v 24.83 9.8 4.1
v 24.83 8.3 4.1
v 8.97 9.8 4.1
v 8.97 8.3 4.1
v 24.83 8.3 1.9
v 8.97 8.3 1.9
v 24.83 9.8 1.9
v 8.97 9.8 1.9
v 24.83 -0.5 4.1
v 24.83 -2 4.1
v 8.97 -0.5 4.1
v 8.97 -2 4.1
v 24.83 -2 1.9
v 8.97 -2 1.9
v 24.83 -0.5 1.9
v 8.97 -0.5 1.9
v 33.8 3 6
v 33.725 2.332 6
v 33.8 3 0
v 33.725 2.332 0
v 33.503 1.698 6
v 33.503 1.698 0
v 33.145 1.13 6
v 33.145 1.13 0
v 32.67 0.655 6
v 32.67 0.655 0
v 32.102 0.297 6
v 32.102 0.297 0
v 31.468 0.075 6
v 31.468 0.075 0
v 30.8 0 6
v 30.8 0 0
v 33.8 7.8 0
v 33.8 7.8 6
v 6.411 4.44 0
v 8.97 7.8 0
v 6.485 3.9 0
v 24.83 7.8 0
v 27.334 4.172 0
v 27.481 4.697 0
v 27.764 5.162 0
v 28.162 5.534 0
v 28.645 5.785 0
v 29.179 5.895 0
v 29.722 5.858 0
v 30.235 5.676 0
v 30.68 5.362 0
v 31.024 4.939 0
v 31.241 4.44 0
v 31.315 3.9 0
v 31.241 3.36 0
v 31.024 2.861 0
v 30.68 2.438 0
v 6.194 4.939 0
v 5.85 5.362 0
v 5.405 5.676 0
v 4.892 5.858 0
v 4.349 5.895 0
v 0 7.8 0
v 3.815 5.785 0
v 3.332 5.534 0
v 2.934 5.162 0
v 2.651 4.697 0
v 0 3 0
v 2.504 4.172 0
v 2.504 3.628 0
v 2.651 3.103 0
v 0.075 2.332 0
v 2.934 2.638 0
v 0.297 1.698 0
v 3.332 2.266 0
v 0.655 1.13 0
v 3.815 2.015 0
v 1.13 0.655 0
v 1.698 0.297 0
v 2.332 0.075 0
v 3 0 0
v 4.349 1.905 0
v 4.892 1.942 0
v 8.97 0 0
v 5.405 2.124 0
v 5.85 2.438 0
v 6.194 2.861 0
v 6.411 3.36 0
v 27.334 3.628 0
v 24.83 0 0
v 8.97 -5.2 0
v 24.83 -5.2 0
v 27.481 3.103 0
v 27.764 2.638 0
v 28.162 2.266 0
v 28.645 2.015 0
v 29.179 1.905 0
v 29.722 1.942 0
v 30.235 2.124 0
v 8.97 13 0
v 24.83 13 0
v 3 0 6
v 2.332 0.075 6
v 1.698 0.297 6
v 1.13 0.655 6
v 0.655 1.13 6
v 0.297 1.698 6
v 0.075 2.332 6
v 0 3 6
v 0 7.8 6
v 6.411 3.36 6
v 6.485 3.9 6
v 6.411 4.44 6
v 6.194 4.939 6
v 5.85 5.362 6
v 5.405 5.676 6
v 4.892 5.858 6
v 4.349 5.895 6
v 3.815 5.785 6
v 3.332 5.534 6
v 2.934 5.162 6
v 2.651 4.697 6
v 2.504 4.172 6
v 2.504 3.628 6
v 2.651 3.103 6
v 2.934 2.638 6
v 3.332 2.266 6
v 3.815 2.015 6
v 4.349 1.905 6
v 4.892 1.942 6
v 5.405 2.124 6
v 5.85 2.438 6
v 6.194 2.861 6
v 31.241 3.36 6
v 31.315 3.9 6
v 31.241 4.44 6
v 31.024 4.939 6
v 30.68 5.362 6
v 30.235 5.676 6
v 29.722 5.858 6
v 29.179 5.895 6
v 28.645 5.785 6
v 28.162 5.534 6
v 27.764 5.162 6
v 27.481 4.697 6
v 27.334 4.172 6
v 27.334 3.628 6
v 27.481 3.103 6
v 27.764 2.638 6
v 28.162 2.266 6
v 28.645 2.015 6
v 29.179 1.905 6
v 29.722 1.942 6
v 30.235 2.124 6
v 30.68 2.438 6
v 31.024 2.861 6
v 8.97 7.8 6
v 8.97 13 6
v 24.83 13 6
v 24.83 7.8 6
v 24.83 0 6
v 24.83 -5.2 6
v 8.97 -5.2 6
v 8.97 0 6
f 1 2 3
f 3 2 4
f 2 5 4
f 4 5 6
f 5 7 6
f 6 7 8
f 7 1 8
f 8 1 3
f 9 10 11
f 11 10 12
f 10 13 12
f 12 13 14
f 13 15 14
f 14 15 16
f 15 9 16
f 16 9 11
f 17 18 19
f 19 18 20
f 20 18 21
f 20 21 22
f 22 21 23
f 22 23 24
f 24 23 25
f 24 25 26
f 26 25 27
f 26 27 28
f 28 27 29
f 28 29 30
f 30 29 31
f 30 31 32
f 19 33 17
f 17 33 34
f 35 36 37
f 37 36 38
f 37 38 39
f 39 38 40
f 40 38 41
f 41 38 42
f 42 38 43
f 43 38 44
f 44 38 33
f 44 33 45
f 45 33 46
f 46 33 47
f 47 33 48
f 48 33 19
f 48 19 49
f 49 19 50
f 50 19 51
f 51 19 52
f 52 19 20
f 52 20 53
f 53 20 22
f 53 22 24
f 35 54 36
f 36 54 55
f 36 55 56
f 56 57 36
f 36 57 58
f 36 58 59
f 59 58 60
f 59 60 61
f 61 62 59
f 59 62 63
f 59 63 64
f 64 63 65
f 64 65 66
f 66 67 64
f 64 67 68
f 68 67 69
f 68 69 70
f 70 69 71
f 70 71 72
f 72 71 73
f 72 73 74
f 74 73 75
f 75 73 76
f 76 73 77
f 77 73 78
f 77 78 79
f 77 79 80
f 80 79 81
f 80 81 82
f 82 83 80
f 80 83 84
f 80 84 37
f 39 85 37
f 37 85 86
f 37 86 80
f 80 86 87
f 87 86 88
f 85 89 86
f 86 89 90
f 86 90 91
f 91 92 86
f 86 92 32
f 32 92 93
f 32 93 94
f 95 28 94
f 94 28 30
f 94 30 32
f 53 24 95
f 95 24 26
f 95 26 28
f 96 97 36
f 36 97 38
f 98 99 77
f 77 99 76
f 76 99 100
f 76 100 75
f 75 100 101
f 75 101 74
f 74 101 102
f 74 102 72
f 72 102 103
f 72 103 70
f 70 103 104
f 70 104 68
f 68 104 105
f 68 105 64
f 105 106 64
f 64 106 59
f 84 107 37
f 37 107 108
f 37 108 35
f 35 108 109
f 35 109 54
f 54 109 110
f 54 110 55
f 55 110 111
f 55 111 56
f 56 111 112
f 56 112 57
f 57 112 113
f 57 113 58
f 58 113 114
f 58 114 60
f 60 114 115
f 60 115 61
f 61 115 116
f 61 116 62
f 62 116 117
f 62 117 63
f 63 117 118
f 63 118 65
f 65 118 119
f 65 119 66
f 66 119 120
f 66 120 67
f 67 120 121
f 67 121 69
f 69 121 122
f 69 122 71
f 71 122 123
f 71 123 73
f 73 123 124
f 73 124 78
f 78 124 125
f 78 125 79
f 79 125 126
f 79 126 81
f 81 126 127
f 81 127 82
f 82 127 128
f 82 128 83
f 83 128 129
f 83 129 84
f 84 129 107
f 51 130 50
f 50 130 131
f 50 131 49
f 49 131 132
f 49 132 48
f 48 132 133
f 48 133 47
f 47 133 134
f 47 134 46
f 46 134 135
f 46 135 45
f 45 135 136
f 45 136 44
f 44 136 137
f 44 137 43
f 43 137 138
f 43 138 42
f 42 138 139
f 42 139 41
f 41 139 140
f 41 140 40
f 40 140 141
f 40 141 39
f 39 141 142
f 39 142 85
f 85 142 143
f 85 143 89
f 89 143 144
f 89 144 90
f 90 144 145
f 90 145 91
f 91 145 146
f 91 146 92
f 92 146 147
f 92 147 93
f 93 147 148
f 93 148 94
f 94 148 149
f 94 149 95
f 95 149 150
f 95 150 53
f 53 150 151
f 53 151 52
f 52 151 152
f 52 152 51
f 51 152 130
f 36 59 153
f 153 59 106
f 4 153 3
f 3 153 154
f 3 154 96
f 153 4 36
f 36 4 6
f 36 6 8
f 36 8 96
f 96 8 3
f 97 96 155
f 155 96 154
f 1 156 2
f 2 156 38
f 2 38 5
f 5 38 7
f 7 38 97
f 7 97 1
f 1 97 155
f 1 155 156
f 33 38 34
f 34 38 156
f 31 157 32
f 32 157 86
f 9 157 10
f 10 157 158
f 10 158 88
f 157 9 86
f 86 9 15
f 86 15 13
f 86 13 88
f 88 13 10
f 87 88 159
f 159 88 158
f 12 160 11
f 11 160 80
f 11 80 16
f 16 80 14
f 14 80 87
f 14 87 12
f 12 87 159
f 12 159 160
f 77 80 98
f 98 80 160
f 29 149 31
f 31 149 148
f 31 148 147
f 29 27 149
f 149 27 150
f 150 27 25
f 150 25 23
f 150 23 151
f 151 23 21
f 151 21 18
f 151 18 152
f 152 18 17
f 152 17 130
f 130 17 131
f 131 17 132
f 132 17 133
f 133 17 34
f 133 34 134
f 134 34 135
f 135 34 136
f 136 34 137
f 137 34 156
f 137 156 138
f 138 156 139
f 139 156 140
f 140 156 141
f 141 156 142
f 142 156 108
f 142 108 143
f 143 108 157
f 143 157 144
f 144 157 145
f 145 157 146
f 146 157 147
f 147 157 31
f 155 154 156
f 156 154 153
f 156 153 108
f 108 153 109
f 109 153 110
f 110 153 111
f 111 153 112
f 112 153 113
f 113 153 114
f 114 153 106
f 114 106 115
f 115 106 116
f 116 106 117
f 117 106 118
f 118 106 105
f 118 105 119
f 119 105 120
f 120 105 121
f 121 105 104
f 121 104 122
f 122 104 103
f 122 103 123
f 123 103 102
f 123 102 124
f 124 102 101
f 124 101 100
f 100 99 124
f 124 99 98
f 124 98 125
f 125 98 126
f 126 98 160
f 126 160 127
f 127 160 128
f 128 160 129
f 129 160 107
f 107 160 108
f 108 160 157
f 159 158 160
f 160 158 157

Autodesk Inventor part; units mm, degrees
ref_plane "YZ Plane" through (0, 0, 0) normal (1, 0, 0) x (0, 1, 0)
ref_plane "XZ Plane" through (0, 0, 0) normal (0, 1, 0) x (-1, 0, 0)
ref_plane "XY Plane" through (0, 0, 0) normal (0, 0, 1) x (1, 0, 0)
sketch "Esquisse1" plane through (0, 0, 0) normal (0, 0, 1) x (1, 0, 0)
  line L0 (0, 0) -> (0, 7.8)
  line L1 (0, 7.8) -> (8.97, 7.8)
  line L2 (8.97, 7.8) -> (8.97, 13)
  line L3 (8.97, 13) -> (24.83, 13)
  line L4 (24.83, 13) -> (24.83, 7.8)
  line L5 (24.83, 7.8) -> (33.8, 7.8)
  line L6 (33.8, 7.8) -> (33.8, 0)
  line L7 (33.8, 0) -> (24.83, 0)
  line L8 (24.83, 0) -> (24.83, -5.2)
  line L9 (24.83, -5.2) -> (8.97, -5.2)
  line L10 (8.97, -5.2) -> (8.97, 0)
  line L11 (0, 0) -> (8.97, 0)
  dimension "d0" = 7.8
  dimension "d1" = 7.8
  dimension "d2" = 15.86
  dimension "d3" = 33.8
  dimension "d4" = 18.2
  dimension "d5" = 5.2
  dimension "d6" = 8.97
extrude "Extrusion1" add sketch "Esquisse1" along normal blind 6
sketch "Esquisse2" plane through (0, 0, 6) normal (0, 0, 1) x (1, 0, 0)
  line L0 (0, 7.8) -> (0, 0) construction
  line L1 (0, 0) -> (8.97, 0) construction
  line L2 (0, 7.8) -> (8.97, 0) construction
  line L3 (8.97, 13) -> (8.97, 7.8) construction
  line L4 (8.97, 7.8) -> (0, 0) construction
  line L5 (24.83, 7.8) -> (33.8, 0) construction
  line L6 (33.8, 0) -> (33.8, 7.8) construction
  line L7 (24.83, -5.2) -> (24.83, 0) construction
  line L8 (33.8, 7.8) -> (24.83, 0) construction
  circle A0 centre (4.485, 3.9) radius 2
  circle A1 centre (29.315, 3.9) radius 2
  dimension "d9" = 4
  dimension "d10" = 4
extrude "Extrusion2" cut sketch "Esquisse2" against normal blind 7
fillet "Congé1" radius 3 1 edges at (0, 0, 3)
fillet "Congé2" radius 3 1 edges at (33.8, 0, 3)
sketch "Esquisse3" plane through (24.83, 7.8, 0) normal (1, 0, 0) x (0, 0, -1)
  line L0 (-4.1, 2) -> (-1.9, 2)
  line L1 (-1.9, 2) -> (-1.9, 0.5)
  line L2 (-1.9, 0.5) -> (-4.1, 0.5)
  line L3 (-4.1, 0.5) -> (-4.1, 2)
  line L4 (-4.1, -8.3) -> (-1.9, -8.3)
  line L5 (-1.9, -8.3) -> (-1.9, -9.8)
  line L6 (-1.9, -9.8) -> (-4.1, -9.8)
  line L7 (-4.1, -9.8) -> (-4.1, -8.3)
  line L8 (0, -7.8) -> (-6, -7.8) projected
  line L9 (0, -7.8) -> (0, -13) projected
  line L10 (0, 0) -> (-6, 0) projected
  dimension "d15" = 2.2
  dimension "d16" = 1.5
  dimension "d17" = 0.5
  dimension "d18" = 1.9
  dimension "d19" = 0.5
  dimension "d20" = 1.5
extrude "Extrusion3" cut sketch "Esquisse3" against normal blind 15.86
properties part number "Finger juncture" material "Plastique ABS"
